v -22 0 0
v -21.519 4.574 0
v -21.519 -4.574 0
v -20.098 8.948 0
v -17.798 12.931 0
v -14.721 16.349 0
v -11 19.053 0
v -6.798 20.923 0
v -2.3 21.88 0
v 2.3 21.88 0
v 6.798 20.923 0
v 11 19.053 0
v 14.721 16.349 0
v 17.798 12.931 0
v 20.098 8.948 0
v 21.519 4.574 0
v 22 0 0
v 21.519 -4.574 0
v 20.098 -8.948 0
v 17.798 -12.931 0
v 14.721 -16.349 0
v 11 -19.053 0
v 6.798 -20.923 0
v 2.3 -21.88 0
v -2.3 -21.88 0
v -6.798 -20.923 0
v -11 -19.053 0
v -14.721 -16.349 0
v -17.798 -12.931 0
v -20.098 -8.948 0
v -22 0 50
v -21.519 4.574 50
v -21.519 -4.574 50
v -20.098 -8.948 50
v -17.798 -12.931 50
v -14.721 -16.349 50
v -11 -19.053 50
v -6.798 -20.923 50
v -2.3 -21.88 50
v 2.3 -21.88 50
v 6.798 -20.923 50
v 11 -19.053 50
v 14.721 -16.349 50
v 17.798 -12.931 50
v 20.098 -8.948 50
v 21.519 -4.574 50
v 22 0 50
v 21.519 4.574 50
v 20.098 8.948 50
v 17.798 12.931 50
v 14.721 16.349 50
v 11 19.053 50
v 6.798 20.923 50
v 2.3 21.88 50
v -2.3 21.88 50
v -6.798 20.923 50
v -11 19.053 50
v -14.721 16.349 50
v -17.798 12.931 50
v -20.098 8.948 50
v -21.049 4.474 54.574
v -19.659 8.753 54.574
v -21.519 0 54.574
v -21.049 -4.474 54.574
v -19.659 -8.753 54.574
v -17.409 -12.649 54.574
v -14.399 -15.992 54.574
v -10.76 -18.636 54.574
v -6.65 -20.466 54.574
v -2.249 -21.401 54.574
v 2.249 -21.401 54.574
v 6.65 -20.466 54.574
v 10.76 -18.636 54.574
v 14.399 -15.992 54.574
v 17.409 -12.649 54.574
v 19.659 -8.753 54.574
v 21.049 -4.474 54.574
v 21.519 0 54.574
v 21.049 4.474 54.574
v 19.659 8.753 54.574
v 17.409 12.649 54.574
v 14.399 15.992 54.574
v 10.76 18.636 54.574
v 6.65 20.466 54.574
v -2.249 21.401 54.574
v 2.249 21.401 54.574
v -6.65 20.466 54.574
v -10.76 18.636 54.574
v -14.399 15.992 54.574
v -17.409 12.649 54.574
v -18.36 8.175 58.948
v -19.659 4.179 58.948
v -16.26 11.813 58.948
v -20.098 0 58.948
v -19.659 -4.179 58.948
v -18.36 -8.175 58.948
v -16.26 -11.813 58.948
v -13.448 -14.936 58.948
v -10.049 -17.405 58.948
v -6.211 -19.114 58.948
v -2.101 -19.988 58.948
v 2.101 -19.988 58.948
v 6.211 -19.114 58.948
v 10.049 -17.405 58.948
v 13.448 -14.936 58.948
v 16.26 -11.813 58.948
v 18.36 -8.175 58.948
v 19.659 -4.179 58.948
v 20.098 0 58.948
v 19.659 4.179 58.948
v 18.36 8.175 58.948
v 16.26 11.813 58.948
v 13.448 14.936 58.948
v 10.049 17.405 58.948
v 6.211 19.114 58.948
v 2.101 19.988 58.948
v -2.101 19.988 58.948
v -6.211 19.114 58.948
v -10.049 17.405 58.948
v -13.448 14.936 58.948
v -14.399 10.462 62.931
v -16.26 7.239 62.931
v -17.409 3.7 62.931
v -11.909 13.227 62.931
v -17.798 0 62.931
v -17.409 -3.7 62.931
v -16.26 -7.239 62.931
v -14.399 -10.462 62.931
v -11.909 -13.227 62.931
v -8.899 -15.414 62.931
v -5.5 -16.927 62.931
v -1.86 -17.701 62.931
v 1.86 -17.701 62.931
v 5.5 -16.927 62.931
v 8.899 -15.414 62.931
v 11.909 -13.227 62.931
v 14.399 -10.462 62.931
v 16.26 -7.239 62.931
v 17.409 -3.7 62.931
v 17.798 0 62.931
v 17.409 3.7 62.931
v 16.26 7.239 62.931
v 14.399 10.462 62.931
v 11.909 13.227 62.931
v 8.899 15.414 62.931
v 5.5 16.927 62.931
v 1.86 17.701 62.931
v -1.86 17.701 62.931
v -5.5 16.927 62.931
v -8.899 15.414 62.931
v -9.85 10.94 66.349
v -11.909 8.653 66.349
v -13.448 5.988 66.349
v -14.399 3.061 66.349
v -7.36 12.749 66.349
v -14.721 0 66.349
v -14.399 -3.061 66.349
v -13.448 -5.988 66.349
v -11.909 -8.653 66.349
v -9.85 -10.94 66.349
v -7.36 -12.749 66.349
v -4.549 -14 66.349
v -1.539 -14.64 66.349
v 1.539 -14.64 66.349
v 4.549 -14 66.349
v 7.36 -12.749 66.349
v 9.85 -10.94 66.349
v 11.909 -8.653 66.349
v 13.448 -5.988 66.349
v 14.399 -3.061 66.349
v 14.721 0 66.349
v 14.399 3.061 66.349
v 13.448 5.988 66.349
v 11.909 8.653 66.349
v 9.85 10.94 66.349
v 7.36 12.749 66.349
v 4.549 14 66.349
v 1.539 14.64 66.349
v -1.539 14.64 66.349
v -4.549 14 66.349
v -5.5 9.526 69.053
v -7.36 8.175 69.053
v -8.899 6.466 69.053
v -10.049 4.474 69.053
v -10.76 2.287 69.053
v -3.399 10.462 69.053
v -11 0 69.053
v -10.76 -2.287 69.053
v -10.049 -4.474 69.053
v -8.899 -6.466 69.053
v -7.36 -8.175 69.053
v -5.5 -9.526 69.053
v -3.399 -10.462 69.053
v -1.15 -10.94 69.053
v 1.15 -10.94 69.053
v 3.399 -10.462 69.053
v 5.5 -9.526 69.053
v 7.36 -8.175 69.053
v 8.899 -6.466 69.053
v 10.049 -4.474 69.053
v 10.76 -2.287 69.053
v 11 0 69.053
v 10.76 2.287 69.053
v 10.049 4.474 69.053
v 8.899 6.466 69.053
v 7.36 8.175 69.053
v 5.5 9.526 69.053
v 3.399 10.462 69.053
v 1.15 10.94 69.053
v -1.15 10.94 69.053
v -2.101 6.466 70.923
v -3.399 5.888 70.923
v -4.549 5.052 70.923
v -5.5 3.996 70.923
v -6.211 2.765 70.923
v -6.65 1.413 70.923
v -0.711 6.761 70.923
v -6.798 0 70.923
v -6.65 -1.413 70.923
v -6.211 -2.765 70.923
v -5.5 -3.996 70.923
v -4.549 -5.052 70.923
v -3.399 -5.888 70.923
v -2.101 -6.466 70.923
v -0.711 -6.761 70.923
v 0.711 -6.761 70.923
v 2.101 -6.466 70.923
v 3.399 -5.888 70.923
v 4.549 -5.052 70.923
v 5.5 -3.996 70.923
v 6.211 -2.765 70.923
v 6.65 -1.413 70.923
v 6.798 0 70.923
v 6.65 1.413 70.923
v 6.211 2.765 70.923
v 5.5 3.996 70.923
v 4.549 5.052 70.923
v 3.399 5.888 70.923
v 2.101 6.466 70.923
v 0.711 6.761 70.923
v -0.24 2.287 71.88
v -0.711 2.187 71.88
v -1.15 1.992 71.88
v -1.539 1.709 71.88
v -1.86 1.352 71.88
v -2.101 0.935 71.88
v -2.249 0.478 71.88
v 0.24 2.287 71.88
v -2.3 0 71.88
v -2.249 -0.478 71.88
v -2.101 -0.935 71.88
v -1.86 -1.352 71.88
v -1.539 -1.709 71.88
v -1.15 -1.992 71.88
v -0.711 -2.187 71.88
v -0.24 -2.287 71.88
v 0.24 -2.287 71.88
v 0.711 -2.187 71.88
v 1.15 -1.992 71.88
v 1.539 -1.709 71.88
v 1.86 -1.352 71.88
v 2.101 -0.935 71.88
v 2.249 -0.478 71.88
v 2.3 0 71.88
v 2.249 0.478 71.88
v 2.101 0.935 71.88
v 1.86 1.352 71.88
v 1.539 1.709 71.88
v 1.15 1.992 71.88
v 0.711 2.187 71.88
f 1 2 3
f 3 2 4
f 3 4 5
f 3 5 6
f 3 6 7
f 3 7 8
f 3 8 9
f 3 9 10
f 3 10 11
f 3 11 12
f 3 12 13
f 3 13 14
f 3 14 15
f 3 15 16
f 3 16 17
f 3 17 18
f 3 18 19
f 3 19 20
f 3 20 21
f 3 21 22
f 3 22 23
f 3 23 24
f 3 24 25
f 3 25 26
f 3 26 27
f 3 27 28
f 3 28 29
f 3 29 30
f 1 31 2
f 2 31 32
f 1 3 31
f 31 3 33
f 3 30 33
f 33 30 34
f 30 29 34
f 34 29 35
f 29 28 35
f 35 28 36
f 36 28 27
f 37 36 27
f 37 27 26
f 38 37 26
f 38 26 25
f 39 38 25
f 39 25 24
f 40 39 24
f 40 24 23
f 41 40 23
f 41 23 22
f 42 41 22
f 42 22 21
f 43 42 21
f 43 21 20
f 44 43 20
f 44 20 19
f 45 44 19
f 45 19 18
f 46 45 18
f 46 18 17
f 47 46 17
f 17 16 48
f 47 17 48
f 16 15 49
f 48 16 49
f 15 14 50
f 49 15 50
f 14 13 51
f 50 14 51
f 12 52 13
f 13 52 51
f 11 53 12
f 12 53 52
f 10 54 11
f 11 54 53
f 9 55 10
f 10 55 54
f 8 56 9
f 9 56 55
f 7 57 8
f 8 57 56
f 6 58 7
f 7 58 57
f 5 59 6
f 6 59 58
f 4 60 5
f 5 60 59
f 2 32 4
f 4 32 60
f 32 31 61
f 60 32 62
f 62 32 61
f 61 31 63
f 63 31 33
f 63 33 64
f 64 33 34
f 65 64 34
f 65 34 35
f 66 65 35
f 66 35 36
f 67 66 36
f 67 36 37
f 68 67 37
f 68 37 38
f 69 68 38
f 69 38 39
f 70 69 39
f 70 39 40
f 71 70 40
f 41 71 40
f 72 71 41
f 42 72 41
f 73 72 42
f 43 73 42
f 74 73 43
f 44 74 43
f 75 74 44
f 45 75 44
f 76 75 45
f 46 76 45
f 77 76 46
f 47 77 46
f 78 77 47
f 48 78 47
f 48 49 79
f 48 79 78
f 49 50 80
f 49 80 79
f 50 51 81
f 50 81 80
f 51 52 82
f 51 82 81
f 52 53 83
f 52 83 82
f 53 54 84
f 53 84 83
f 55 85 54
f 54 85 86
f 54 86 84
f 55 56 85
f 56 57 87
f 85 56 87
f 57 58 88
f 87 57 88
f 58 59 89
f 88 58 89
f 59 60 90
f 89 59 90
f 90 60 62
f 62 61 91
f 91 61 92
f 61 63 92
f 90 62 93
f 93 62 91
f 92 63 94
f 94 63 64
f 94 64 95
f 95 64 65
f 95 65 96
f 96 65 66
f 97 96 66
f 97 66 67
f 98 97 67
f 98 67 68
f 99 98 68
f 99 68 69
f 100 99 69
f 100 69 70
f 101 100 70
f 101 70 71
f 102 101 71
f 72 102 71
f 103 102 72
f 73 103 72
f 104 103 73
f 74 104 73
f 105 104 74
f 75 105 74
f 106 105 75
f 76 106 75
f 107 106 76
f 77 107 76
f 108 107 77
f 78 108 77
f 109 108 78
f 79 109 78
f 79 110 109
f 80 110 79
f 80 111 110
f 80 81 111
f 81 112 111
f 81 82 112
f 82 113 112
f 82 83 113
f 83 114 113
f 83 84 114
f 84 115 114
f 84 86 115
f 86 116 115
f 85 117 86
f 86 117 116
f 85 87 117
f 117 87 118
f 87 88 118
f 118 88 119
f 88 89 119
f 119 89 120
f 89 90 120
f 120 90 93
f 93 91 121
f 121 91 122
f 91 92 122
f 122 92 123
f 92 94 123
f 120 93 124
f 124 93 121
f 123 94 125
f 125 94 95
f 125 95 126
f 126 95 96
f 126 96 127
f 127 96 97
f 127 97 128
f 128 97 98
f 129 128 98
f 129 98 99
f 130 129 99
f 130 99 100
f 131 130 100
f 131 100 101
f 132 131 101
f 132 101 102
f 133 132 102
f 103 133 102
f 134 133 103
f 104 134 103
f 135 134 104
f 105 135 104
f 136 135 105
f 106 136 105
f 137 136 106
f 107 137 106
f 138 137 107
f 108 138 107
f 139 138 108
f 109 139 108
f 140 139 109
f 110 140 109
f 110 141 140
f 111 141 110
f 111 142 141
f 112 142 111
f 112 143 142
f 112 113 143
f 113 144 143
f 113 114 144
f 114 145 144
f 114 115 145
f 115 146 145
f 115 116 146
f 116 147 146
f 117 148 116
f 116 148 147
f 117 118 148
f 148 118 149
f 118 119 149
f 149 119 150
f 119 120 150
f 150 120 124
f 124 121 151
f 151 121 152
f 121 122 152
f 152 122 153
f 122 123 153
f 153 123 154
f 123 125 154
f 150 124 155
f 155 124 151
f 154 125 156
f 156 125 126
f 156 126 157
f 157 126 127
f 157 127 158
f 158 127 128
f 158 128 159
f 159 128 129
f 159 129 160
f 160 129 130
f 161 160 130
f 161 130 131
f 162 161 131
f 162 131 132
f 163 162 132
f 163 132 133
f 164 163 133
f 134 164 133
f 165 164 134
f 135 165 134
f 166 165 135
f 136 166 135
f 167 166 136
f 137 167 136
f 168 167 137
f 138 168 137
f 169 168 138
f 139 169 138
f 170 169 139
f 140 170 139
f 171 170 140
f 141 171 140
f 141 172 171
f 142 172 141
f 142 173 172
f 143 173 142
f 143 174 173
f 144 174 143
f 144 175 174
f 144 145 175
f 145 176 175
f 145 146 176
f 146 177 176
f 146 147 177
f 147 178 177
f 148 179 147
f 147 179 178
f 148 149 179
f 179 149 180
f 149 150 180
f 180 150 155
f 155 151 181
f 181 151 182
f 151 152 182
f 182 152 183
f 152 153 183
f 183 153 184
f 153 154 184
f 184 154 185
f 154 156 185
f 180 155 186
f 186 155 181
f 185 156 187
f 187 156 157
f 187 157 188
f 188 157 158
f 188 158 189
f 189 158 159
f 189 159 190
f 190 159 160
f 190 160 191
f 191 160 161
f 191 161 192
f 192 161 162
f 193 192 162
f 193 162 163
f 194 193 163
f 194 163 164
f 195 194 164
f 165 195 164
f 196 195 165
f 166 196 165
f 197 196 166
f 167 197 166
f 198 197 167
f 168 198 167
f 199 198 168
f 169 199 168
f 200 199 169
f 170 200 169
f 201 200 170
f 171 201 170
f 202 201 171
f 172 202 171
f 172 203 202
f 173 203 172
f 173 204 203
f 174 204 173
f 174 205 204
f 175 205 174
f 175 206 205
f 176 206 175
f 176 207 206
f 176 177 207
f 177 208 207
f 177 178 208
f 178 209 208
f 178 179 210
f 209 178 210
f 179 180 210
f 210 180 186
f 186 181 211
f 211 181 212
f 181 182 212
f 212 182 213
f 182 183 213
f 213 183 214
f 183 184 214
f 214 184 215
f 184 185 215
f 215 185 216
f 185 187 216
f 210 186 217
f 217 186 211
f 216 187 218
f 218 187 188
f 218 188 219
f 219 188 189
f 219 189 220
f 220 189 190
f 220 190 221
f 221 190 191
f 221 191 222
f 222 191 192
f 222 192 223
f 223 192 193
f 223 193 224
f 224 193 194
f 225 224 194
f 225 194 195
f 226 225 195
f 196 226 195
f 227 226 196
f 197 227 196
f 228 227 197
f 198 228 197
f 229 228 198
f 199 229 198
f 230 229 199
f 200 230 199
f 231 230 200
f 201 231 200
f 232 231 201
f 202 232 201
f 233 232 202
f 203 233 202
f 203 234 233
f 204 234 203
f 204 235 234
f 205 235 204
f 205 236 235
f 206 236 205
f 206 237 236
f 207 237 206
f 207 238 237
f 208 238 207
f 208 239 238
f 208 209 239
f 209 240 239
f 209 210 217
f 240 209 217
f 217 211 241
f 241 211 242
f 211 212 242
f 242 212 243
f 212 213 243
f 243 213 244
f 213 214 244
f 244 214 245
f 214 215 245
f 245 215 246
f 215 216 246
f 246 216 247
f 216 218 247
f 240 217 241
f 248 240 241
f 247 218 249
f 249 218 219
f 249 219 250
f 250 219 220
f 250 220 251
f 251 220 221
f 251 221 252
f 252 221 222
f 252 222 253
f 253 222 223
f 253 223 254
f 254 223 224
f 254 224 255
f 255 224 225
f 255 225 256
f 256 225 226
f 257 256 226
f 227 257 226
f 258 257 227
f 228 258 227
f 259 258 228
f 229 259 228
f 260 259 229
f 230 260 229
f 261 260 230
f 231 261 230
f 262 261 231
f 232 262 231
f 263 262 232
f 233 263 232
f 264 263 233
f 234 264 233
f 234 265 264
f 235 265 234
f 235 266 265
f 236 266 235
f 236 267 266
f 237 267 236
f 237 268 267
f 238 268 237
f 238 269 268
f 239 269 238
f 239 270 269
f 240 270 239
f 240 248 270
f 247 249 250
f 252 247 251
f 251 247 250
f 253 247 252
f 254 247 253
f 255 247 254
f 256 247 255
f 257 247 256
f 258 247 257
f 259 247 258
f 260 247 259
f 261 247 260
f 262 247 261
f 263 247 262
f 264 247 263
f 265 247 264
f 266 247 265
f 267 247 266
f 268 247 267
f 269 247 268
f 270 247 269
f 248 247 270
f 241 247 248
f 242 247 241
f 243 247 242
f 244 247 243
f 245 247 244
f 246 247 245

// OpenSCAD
module body() {
  cylinder(50, r = 22);
  translate([0, 0, 50]) sphere(22);
}

module robokitty() {
  body();
}

robokitty();
